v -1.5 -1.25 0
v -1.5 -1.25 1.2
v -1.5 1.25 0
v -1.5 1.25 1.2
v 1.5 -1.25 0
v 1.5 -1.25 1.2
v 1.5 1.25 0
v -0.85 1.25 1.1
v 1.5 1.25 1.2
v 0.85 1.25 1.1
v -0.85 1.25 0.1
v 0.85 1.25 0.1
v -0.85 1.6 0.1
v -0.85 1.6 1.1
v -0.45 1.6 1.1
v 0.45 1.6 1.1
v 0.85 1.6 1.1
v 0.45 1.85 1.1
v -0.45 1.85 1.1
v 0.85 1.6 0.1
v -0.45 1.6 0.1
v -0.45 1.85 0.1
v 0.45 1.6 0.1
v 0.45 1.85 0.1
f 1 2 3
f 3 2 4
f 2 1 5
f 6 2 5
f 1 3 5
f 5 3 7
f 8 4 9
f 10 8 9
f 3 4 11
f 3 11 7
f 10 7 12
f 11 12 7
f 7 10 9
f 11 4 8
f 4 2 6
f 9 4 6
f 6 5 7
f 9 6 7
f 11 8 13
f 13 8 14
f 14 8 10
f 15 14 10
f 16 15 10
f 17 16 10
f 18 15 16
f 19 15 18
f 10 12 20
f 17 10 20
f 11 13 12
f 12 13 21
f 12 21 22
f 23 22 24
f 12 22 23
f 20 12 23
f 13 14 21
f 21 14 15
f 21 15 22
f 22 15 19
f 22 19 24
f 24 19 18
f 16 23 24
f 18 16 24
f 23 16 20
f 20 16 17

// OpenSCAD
union() {
translate(v=[0,0,1.2/2]){cube([3, 2.5, 1.2], true);}
translate(v=[0,1.4,1.2/2]){cube([1.7, 0.4, 1], true);}
translate(v=[0,1.7,1.2/2]){cube([0.9, 0.3, 1], true);}
}
